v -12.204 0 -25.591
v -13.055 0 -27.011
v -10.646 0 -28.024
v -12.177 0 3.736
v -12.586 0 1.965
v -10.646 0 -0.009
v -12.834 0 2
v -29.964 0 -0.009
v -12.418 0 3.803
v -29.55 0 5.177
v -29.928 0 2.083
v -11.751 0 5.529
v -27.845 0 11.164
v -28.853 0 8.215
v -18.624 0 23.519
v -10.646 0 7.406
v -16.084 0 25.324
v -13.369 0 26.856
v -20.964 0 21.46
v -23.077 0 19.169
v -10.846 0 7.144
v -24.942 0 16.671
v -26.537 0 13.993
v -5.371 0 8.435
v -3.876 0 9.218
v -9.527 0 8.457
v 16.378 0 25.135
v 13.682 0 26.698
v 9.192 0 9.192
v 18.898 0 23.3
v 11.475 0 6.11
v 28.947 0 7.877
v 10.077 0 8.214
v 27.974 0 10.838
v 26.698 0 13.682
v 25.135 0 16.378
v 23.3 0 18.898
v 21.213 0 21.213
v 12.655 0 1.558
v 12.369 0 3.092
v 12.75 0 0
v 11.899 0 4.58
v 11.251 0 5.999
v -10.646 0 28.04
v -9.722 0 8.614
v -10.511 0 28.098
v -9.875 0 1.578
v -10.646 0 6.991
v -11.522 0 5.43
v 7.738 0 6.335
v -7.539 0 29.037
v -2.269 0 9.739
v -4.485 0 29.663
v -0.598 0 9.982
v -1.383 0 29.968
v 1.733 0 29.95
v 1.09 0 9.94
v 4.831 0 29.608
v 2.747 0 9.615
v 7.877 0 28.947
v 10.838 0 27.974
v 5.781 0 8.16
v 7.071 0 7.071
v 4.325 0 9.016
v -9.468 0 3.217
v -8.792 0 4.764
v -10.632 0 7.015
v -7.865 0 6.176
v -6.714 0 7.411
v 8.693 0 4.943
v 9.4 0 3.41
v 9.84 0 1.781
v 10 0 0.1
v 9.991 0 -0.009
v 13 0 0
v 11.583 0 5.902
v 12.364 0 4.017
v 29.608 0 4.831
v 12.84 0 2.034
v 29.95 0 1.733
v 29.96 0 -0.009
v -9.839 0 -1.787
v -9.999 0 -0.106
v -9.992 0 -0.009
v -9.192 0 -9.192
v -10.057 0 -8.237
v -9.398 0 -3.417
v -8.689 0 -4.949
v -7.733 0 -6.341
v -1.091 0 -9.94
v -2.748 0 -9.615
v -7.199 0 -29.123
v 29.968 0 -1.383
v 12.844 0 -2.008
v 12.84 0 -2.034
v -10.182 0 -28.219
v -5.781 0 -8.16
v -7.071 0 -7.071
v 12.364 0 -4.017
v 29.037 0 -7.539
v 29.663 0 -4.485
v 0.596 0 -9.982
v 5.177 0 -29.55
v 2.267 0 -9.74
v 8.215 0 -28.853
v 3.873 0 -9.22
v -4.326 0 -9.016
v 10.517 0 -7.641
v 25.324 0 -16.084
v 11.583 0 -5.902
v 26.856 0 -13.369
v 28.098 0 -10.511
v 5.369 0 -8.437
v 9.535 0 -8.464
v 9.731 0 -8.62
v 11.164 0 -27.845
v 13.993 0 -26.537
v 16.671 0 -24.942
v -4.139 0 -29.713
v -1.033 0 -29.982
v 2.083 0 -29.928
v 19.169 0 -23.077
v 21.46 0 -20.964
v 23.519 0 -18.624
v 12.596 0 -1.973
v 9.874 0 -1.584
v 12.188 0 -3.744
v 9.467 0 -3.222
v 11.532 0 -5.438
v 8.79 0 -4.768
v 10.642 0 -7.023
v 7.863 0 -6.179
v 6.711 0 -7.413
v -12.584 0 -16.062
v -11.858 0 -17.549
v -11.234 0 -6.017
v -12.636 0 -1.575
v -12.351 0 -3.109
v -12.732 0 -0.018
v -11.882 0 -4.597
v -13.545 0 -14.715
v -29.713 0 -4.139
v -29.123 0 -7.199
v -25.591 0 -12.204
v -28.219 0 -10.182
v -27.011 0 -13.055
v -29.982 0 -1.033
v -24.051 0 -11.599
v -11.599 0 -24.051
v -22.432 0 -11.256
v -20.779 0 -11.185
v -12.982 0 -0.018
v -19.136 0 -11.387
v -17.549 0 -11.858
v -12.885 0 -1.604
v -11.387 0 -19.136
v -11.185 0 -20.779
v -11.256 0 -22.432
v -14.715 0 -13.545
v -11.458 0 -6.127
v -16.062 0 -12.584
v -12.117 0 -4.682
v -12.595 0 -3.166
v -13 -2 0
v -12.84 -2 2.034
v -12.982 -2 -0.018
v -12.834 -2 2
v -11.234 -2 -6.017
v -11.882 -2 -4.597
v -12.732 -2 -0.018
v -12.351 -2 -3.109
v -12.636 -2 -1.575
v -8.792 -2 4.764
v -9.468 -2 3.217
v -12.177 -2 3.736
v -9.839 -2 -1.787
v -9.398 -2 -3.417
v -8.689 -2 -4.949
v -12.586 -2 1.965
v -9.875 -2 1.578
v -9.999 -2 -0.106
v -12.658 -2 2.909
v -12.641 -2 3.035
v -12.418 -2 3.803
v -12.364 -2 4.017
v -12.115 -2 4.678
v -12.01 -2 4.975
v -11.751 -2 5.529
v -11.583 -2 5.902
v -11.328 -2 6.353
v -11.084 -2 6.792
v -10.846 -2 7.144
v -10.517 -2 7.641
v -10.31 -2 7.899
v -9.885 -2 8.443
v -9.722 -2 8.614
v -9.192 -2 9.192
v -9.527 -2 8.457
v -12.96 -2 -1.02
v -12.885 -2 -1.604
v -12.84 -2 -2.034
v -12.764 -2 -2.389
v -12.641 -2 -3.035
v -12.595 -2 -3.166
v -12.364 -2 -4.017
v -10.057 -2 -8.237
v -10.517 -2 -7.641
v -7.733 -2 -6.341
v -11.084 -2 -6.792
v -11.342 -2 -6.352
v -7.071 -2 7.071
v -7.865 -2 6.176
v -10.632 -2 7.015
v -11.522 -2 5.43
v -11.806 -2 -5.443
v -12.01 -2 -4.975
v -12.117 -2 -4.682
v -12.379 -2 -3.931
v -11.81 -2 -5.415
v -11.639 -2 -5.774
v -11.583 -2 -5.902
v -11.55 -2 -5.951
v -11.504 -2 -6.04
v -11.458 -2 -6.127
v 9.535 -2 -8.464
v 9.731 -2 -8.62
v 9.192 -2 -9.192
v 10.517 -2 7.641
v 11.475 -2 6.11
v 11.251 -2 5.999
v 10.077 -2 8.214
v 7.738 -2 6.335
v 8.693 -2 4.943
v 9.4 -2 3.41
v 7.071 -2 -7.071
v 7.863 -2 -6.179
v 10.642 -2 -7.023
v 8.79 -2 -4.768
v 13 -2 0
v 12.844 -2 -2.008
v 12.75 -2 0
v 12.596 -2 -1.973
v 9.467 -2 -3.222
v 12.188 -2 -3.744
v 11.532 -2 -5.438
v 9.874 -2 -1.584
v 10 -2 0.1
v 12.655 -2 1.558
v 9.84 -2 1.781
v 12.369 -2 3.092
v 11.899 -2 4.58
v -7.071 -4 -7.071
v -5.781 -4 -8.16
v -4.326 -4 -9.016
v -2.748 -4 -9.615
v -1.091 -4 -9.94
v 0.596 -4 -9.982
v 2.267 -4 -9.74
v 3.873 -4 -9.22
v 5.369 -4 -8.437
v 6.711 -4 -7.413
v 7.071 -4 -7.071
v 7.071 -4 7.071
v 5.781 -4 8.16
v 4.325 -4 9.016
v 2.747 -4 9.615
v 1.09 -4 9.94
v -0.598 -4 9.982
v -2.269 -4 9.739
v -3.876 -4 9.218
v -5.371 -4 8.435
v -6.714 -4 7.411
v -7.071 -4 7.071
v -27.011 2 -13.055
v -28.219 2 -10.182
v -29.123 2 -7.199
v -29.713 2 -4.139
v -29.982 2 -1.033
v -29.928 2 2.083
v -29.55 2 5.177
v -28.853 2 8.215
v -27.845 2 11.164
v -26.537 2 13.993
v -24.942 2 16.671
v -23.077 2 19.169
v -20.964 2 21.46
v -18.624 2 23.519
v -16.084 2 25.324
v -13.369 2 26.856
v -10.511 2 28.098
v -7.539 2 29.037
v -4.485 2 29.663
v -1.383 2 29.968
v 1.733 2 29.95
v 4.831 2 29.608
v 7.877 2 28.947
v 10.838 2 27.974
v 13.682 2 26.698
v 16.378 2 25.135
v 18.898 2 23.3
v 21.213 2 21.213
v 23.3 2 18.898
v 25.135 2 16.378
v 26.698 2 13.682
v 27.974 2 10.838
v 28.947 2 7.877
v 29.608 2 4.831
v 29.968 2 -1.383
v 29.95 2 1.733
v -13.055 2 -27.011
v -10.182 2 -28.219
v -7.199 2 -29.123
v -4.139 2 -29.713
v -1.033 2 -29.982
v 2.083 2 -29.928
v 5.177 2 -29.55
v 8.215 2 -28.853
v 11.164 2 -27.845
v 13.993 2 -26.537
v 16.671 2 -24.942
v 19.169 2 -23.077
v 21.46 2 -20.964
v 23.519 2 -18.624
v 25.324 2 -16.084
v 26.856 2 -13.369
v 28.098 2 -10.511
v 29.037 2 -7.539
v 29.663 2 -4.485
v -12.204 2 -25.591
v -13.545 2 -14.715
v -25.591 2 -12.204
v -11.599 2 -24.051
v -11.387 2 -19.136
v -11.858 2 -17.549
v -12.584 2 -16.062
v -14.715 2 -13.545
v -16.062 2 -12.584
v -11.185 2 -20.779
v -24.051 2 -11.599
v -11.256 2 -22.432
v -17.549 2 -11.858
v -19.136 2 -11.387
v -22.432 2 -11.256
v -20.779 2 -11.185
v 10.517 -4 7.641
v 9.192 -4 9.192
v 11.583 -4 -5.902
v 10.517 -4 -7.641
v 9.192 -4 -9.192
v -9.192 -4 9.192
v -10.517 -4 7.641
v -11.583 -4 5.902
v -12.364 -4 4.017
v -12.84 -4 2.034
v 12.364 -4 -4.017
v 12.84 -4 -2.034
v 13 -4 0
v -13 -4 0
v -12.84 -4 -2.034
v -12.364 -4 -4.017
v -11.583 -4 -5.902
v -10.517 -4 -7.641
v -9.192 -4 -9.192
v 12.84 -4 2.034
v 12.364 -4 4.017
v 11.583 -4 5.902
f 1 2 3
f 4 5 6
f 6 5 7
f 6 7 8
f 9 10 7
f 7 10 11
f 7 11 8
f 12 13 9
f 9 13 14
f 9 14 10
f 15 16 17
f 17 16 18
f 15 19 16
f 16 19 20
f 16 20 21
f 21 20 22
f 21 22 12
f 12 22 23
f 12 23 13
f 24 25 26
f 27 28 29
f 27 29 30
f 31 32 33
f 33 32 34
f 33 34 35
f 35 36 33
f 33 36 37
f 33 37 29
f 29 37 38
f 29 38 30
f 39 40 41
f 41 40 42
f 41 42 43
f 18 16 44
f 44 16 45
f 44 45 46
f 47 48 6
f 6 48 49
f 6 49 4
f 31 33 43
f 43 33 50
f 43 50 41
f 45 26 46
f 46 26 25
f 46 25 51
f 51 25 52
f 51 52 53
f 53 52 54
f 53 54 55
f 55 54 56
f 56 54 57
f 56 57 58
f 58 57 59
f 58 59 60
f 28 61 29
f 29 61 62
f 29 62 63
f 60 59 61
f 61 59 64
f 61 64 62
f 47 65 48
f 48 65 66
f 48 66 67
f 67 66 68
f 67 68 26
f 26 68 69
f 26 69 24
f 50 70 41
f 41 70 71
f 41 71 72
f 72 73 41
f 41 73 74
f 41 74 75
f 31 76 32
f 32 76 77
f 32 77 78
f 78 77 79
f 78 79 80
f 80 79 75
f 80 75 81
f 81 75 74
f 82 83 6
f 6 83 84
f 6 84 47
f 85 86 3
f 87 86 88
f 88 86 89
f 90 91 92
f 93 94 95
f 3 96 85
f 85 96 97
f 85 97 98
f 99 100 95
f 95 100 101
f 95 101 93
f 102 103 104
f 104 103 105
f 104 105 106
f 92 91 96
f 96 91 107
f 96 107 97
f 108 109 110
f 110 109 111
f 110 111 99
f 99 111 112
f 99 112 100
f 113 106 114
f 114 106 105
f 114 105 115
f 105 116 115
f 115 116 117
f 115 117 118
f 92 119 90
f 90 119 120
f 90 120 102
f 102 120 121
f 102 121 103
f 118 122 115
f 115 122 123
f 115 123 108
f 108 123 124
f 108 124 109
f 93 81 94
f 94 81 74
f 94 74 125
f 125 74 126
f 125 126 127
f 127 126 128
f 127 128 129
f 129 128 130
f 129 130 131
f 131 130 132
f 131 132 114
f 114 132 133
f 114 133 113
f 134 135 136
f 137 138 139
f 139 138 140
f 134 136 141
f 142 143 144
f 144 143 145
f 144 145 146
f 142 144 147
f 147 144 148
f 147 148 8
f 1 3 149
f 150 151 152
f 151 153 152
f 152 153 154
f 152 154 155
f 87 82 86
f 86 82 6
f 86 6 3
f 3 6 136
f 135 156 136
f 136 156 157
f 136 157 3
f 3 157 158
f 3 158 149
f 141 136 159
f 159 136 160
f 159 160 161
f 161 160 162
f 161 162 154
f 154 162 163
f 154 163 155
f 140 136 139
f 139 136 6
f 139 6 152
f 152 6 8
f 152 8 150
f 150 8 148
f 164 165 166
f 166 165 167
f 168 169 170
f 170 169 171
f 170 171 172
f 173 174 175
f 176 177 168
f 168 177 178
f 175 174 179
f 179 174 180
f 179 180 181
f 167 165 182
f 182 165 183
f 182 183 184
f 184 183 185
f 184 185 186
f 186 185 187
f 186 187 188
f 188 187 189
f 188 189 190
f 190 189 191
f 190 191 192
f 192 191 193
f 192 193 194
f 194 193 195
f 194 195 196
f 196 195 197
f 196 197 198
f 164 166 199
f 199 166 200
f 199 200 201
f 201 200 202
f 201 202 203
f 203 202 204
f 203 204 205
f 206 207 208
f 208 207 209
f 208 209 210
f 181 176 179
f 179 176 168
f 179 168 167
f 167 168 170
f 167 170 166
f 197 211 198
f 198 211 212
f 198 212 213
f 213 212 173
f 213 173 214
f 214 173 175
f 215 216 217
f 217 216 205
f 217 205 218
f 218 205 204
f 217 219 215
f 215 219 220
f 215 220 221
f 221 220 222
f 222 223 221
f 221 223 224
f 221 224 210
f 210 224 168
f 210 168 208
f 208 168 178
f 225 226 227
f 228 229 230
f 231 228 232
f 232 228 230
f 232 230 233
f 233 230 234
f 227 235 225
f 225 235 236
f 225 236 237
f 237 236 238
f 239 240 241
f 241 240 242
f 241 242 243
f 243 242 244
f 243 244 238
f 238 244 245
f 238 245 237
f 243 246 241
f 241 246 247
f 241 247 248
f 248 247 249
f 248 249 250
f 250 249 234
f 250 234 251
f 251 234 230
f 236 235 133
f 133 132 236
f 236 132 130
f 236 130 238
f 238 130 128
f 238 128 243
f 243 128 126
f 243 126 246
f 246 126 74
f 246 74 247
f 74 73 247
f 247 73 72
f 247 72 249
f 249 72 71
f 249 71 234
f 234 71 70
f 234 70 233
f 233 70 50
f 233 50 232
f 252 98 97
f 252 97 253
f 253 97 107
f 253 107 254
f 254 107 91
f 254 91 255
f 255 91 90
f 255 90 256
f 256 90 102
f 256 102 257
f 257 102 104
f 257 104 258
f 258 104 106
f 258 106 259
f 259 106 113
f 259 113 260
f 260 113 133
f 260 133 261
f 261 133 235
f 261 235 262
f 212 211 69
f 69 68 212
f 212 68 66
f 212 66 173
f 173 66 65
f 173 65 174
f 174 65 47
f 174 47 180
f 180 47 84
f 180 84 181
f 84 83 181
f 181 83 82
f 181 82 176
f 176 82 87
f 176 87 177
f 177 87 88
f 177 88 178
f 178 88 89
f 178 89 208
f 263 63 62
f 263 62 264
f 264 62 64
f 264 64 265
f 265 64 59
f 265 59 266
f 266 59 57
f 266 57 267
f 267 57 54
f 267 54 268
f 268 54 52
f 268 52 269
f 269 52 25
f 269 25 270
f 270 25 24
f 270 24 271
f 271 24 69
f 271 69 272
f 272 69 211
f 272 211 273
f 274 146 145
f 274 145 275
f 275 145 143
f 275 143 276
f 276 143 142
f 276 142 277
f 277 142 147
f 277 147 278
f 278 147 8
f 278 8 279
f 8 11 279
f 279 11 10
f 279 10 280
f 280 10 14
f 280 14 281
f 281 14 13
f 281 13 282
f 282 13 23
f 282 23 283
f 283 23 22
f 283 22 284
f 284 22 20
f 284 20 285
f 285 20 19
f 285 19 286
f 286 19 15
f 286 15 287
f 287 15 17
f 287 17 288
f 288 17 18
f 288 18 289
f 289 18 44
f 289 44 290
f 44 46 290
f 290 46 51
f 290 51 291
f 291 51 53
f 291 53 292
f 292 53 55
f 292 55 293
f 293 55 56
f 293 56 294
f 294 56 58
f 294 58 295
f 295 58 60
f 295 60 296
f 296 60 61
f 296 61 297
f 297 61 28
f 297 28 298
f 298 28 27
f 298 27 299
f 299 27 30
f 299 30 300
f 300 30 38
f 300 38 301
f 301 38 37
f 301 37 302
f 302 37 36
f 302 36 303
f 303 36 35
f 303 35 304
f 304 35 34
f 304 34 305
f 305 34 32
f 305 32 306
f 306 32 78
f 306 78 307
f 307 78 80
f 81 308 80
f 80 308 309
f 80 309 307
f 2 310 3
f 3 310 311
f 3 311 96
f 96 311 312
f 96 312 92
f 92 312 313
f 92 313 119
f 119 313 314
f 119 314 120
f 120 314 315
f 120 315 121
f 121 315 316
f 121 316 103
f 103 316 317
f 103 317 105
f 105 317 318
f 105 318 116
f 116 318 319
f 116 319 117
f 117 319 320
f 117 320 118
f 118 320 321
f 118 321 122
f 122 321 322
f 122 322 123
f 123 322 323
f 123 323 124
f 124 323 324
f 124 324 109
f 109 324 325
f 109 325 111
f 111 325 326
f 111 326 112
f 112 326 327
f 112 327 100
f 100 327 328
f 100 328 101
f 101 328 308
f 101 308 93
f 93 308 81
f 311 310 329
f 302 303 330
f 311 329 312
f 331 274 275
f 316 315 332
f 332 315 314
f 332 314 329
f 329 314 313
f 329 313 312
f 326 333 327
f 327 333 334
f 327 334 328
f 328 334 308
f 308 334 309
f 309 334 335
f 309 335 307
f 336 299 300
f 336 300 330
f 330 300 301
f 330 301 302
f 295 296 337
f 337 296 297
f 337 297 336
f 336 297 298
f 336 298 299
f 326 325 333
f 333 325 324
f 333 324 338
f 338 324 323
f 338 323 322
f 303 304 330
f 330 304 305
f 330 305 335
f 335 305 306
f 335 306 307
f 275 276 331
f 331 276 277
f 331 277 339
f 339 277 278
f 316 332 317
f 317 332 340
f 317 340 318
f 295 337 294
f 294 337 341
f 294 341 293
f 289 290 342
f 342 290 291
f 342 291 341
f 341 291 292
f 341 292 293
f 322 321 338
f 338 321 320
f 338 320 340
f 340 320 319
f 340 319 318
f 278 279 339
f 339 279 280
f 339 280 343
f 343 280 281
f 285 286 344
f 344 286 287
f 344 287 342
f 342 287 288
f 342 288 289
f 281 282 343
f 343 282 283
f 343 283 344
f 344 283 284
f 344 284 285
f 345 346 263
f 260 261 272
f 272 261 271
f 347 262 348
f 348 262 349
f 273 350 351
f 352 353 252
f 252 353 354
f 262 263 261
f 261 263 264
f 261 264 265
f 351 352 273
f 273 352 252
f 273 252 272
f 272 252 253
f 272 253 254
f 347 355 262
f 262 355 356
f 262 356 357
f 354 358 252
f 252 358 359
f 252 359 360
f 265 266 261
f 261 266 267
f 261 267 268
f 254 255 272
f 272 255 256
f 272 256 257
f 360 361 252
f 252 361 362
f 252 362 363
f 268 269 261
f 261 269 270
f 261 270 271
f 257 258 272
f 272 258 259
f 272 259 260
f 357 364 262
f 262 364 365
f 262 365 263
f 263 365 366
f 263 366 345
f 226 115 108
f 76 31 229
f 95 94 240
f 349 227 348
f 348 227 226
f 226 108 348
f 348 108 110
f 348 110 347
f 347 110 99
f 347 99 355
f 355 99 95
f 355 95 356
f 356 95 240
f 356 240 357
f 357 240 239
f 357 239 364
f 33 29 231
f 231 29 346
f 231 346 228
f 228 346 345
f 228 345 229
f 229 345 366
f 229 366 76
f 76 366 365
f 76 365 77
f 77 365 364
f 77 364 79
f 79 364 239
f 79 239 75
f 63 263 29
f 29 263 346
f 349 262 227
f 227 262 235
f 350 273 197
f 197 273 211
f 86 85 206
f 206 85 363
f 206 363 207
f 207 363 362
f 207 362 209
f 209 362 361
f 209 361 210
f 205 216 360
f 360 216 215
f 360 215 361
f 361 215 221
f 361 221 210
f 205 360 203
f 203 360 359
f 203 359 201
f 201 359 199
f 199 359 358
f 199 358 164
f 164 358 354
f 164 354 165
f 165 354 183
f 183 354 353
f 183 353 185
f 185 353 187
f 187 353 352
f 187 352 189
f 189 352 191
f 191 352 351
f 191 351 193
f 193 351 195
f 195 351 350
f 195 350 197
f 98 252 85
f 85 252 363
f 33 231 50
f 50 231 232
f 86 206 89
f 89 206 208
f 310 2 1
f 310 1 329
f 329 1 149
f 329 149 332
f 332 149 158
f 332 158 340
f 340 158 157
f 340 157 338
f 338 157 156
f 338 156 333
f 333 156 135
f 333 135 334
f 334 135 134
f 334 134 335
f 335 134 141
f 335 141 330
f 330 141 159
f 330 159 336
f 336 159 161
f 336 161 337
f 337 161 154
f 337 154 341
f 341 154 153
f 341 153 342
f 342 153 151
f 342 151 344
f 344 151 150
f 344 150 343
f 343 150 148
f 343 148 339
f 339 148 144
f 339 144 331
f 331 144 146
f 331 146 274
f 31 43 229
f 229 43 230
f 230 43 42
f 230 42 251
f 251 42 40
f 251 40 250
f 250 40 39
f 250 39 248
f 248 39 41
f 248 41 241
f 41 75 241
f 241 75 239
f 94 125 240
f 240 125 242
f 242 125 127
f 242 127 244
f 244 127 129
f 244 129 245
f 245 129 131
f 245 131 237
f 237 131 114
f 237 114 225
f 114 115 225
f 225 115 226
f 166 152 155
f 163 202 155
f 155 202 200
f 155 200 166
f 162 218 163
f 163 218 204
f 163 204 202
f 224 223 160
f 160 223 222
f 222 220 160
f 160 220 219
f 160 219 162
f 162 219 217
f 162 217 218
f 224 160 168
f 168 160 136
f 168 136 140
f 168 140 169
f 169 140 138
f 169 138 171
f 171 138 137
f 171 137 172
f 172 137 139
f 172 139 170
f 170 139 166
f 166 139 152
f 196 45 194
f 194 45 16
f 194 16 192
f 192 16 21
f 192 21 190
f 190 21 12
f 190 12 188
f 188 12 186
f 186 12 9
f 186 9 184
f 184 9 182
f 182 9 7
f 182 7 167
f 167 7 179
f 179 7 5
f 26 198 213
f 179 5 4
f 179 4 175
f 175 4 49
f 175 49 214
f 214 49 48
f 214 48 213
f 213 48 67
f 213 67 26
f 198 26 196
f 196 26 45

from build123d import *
from build123d.topology import SkipClean

# Parameters (mm, degrees)
SKIZZE1_R                         = 10
AUFSATZ_LINEAR_AUSTRAGEN1_DEPTH   = 2
SKIZZE2_R                         = 30
AUFSATZ_LINEAR_AUSTRAGEN2_DEPTH   = 2
AUFSATZ_LINEAR_AUSTRAGEN3_DEPTH   = 2
AUFSATZ_LINEAR_AUSTRAGEN3_2_DEPTH = 2
SKIZZE4_R                         = 10
AUFSATZ_LINEAR_AUSTRAGEN4_DEPTH   = 2
AUFSATZ_LINEAR_START              = 3
AUFSATZ_LINEAR_AUSTRAGEN15_DEPTH  = 3
SKIZZE9_R                         = 10
SCHNITT_LINEAR_AUSTRAGEN1_DEPTH   = 10
AUFSATZ_LINEAR_AUSTRAGEN16_DEPTH  = 3


with BuildPart() as part:
    # Skizze1 → Aufsatz-Linear austragen1 (new body)
    with BuildSketch(Plane(origin=(0, 0, 0), x_dir=(1, 0, 0), z_dir=(0, 1, 0))):
        with Locations(Location((0, 0, 0), (0, 0, 270))):
            Circle(SKIZZE1_R)
    extrude(amount=-AUFSATZ_LINEAR_AUSTRAGEN1_DEPTH)

    # Skizze2 → Aufsatz-Linear austragen2 (add)
    with BuildSketch(Plane(origin=(0, 0, 0), x_dir=(1, 0, 0), z_dir=(0, 1, 0))):
        with Locations(Location((0, 0, 0), (0, 0, 270))):
            Circle(SKIZZE2_R)
    extrude(amount=AUFSATZ_LINEAR_AUSTRAGEN2_DEPTH)



with BuildPart() as body_2:
    # Skizze3 → Aufsatz-Linear austragen3 (new body)
    with BuildSketch(Plane.XZ.offset(2)):
        with BuildLine():
            Line((-7.071067812, 7.071067812), (-9.192388155, 9.192388155))
            ThreePointArc((-9.192388155, 9.192388155), (-13, 0), (-9.192388155, -9.192388155))
            Line((-9.192388155, -9.192388155), (-7.071067812, -7.071067812))
            ThreePointArc((-7.071067812, -7.071067812), (-10, 0), (-7.071067812, 7.071067812))
        make_face()
    extrude(amount=AUFSATZ_LINEAR_AUSTRAGEN3_DEPTH)


with BuildPart() as body_3:
    # Skizze3 → Aufsatz-Linear austragen3 2 (new body)
    with BuildSketch(Plane.XZ.offset(2)):
        with BuildLine():
            Line((7.071067812, 7.071067812), (9.192388155, 9.192388155))
            ThreePointArc((9.192388155, 9.192388155), (13, 0), (9.192388155, -9.192388155))
            Line((9.192388155, -9.192388155), (7.071067812, -7.071067812))
            ThreePointArc((7.071067812, -7.071067812), (10, 0), (7.071067812, 7.071067812))
        make_face()
    extrude(amount=AUFSATZ_LINEAR_AUSTRAGEN3_2_DEPTH)


with BuildPart() as part_1:
    add(part.part)

    add(body_2.part)  # Aufsatz-Linear austragen4 merges body 2

    add(body_3.part)  # Aufsatz-Linear austragen4 merges body 3
    # Skizze4 → Aufsatz-Linear austragen4 (add)
    with BuildSketch(Plane.XZ.offset(2)):
        with Locations(Location((0, 0, 0), (0, 0, 90))):
            Circle(SKIZZE4_R)
    extrude(amount=AUFSATZ_LINEAR_AUSTRAGEN4_DEPTH)

    # Skizze8 → Aufsatz-Linear austragen15 (add)
    with BuildSketch(Plane(origin=(0, -2, 0), x_dir=(1, 0, 0), z_dir=(0, 1, 0)).offset(AUFSATZ_LINEAR_START)):
        with BuildLine():
            Line((10.076521944, -8.213629254), (7.737557516, -6.334840462))
            ThreePointArc((7.737557516, -6.334840462), (7.413457608, -6.711232845), (7.071067812, -7.071067812))
            Line((7.071067812, -7.071067812), (9.192388155, -9.192388155))
            ThreePointArc((9.192388155, -9.192388155), (9.646875989, -8.714228804), (10.076521944, -8.213629254))
        make_face()
        with BuildLine():
            Line((-7.071067812, 7.071067812), (-9.192388155, 9.192388155))
            ThreePointArc((-9.192388155, 9.192388155), (-9.636776415, 8.725396284), (-10.057468336, 8.236949111))
            Line((-10.057468336, 8.236949111), (-7.732766819, 6.340687449))
            ThreePointArc((-7.732766819, 6.340687449), (-7.410920578, 6.714034271), (-7.071067812, 7.071067812))
        make_face()
    extrude(amount=-AUFSATZ_LINEAR_AUSTRAGEN15_DEPTH)

    # Skizze9 → Schnitt-Linear austragen1 (cut)
    with BuildSketch(Plane.XZ):
        with Locations((-21.176717953, -21.176717953)):
            Circle(SKIZZE9_R)
    extrude(amount=-SCHNITT_LINEAR_AUSTRAGEN1_DEPTH, mode=Mode.SUBTRACT)

    # Skizze10 → Aufsatz-Linear austragen16 (add)
    with SkipClean():  # the faces are left unmerged after this step: merging them gives an invalid solid
        with BuildSketch(Plane.XZ):
            with BuildLine():
                Line((12.75, 0), (13, 0))
                ThreePointArc((13, 0), (12.612939215, 3.148613086), (11.474805482, 6.109733149))
                Line((11.474805482, 6.109733149), (11.250587553, 5.998898209))
                ThreePointArc((11.250587553, 5.998898209), (12.369468285, 3.091723524), (12.75, 0))
            make_face()
            with BuildLine():
                Line((9.53531372, -8.464058852), (9.730797288, -8.620416703))
                ThreePointArc((9.730797288, -8.620416703), (11.761619744, -5.537535643), (12.843968796, -2.008099992))
                Line((12.843968796, -2.008099992), (12.596380081, -1.973248299))
                ThreePointArc((12.596380081, -1.973248299), (11.531939258, -5.438462739), (9.53531372, -8.464058852))
            make_face()
            with BuildLine():
                Line((-12.731858626, -0.017690555), (-12.981862864, -0.017690555))
                ThreePointArc((-12.981862864, -0.017690555), (-12.594944508, -3.166086381), (-11.45802615, -6.127423703))
                Line((-11.45802615, -6.127423703), (-11.233808221, -6.016588763))
                ThreePointArc((-11.233808221, -6.016588763), (-12.351470245, -3.109195987), (-12.731858626, -0.017690555))
            make_face()
            with BuildLine():
                Line((-9.526622279, 8.457212783), (-9.72209655, 8.613563198))
                ThreePointArc((-9.72209655, 8.613563198), (-11.751242737, 5.529465141), (-12.833641797, 1.999945719))
                Line((-12.833641797, 1.999945719), (-12.586053082, 1.965094027))
                ThreePointArc((-12.586053082, 1.965094027), (-11.521565497, 5.430393435), (-9.526622279, 8.457212783))
            make_face()
        extrude(amount=AUFSATZ_LINEAR_AUSTRAGEN16_DEPTH)


solid = part_1.part
